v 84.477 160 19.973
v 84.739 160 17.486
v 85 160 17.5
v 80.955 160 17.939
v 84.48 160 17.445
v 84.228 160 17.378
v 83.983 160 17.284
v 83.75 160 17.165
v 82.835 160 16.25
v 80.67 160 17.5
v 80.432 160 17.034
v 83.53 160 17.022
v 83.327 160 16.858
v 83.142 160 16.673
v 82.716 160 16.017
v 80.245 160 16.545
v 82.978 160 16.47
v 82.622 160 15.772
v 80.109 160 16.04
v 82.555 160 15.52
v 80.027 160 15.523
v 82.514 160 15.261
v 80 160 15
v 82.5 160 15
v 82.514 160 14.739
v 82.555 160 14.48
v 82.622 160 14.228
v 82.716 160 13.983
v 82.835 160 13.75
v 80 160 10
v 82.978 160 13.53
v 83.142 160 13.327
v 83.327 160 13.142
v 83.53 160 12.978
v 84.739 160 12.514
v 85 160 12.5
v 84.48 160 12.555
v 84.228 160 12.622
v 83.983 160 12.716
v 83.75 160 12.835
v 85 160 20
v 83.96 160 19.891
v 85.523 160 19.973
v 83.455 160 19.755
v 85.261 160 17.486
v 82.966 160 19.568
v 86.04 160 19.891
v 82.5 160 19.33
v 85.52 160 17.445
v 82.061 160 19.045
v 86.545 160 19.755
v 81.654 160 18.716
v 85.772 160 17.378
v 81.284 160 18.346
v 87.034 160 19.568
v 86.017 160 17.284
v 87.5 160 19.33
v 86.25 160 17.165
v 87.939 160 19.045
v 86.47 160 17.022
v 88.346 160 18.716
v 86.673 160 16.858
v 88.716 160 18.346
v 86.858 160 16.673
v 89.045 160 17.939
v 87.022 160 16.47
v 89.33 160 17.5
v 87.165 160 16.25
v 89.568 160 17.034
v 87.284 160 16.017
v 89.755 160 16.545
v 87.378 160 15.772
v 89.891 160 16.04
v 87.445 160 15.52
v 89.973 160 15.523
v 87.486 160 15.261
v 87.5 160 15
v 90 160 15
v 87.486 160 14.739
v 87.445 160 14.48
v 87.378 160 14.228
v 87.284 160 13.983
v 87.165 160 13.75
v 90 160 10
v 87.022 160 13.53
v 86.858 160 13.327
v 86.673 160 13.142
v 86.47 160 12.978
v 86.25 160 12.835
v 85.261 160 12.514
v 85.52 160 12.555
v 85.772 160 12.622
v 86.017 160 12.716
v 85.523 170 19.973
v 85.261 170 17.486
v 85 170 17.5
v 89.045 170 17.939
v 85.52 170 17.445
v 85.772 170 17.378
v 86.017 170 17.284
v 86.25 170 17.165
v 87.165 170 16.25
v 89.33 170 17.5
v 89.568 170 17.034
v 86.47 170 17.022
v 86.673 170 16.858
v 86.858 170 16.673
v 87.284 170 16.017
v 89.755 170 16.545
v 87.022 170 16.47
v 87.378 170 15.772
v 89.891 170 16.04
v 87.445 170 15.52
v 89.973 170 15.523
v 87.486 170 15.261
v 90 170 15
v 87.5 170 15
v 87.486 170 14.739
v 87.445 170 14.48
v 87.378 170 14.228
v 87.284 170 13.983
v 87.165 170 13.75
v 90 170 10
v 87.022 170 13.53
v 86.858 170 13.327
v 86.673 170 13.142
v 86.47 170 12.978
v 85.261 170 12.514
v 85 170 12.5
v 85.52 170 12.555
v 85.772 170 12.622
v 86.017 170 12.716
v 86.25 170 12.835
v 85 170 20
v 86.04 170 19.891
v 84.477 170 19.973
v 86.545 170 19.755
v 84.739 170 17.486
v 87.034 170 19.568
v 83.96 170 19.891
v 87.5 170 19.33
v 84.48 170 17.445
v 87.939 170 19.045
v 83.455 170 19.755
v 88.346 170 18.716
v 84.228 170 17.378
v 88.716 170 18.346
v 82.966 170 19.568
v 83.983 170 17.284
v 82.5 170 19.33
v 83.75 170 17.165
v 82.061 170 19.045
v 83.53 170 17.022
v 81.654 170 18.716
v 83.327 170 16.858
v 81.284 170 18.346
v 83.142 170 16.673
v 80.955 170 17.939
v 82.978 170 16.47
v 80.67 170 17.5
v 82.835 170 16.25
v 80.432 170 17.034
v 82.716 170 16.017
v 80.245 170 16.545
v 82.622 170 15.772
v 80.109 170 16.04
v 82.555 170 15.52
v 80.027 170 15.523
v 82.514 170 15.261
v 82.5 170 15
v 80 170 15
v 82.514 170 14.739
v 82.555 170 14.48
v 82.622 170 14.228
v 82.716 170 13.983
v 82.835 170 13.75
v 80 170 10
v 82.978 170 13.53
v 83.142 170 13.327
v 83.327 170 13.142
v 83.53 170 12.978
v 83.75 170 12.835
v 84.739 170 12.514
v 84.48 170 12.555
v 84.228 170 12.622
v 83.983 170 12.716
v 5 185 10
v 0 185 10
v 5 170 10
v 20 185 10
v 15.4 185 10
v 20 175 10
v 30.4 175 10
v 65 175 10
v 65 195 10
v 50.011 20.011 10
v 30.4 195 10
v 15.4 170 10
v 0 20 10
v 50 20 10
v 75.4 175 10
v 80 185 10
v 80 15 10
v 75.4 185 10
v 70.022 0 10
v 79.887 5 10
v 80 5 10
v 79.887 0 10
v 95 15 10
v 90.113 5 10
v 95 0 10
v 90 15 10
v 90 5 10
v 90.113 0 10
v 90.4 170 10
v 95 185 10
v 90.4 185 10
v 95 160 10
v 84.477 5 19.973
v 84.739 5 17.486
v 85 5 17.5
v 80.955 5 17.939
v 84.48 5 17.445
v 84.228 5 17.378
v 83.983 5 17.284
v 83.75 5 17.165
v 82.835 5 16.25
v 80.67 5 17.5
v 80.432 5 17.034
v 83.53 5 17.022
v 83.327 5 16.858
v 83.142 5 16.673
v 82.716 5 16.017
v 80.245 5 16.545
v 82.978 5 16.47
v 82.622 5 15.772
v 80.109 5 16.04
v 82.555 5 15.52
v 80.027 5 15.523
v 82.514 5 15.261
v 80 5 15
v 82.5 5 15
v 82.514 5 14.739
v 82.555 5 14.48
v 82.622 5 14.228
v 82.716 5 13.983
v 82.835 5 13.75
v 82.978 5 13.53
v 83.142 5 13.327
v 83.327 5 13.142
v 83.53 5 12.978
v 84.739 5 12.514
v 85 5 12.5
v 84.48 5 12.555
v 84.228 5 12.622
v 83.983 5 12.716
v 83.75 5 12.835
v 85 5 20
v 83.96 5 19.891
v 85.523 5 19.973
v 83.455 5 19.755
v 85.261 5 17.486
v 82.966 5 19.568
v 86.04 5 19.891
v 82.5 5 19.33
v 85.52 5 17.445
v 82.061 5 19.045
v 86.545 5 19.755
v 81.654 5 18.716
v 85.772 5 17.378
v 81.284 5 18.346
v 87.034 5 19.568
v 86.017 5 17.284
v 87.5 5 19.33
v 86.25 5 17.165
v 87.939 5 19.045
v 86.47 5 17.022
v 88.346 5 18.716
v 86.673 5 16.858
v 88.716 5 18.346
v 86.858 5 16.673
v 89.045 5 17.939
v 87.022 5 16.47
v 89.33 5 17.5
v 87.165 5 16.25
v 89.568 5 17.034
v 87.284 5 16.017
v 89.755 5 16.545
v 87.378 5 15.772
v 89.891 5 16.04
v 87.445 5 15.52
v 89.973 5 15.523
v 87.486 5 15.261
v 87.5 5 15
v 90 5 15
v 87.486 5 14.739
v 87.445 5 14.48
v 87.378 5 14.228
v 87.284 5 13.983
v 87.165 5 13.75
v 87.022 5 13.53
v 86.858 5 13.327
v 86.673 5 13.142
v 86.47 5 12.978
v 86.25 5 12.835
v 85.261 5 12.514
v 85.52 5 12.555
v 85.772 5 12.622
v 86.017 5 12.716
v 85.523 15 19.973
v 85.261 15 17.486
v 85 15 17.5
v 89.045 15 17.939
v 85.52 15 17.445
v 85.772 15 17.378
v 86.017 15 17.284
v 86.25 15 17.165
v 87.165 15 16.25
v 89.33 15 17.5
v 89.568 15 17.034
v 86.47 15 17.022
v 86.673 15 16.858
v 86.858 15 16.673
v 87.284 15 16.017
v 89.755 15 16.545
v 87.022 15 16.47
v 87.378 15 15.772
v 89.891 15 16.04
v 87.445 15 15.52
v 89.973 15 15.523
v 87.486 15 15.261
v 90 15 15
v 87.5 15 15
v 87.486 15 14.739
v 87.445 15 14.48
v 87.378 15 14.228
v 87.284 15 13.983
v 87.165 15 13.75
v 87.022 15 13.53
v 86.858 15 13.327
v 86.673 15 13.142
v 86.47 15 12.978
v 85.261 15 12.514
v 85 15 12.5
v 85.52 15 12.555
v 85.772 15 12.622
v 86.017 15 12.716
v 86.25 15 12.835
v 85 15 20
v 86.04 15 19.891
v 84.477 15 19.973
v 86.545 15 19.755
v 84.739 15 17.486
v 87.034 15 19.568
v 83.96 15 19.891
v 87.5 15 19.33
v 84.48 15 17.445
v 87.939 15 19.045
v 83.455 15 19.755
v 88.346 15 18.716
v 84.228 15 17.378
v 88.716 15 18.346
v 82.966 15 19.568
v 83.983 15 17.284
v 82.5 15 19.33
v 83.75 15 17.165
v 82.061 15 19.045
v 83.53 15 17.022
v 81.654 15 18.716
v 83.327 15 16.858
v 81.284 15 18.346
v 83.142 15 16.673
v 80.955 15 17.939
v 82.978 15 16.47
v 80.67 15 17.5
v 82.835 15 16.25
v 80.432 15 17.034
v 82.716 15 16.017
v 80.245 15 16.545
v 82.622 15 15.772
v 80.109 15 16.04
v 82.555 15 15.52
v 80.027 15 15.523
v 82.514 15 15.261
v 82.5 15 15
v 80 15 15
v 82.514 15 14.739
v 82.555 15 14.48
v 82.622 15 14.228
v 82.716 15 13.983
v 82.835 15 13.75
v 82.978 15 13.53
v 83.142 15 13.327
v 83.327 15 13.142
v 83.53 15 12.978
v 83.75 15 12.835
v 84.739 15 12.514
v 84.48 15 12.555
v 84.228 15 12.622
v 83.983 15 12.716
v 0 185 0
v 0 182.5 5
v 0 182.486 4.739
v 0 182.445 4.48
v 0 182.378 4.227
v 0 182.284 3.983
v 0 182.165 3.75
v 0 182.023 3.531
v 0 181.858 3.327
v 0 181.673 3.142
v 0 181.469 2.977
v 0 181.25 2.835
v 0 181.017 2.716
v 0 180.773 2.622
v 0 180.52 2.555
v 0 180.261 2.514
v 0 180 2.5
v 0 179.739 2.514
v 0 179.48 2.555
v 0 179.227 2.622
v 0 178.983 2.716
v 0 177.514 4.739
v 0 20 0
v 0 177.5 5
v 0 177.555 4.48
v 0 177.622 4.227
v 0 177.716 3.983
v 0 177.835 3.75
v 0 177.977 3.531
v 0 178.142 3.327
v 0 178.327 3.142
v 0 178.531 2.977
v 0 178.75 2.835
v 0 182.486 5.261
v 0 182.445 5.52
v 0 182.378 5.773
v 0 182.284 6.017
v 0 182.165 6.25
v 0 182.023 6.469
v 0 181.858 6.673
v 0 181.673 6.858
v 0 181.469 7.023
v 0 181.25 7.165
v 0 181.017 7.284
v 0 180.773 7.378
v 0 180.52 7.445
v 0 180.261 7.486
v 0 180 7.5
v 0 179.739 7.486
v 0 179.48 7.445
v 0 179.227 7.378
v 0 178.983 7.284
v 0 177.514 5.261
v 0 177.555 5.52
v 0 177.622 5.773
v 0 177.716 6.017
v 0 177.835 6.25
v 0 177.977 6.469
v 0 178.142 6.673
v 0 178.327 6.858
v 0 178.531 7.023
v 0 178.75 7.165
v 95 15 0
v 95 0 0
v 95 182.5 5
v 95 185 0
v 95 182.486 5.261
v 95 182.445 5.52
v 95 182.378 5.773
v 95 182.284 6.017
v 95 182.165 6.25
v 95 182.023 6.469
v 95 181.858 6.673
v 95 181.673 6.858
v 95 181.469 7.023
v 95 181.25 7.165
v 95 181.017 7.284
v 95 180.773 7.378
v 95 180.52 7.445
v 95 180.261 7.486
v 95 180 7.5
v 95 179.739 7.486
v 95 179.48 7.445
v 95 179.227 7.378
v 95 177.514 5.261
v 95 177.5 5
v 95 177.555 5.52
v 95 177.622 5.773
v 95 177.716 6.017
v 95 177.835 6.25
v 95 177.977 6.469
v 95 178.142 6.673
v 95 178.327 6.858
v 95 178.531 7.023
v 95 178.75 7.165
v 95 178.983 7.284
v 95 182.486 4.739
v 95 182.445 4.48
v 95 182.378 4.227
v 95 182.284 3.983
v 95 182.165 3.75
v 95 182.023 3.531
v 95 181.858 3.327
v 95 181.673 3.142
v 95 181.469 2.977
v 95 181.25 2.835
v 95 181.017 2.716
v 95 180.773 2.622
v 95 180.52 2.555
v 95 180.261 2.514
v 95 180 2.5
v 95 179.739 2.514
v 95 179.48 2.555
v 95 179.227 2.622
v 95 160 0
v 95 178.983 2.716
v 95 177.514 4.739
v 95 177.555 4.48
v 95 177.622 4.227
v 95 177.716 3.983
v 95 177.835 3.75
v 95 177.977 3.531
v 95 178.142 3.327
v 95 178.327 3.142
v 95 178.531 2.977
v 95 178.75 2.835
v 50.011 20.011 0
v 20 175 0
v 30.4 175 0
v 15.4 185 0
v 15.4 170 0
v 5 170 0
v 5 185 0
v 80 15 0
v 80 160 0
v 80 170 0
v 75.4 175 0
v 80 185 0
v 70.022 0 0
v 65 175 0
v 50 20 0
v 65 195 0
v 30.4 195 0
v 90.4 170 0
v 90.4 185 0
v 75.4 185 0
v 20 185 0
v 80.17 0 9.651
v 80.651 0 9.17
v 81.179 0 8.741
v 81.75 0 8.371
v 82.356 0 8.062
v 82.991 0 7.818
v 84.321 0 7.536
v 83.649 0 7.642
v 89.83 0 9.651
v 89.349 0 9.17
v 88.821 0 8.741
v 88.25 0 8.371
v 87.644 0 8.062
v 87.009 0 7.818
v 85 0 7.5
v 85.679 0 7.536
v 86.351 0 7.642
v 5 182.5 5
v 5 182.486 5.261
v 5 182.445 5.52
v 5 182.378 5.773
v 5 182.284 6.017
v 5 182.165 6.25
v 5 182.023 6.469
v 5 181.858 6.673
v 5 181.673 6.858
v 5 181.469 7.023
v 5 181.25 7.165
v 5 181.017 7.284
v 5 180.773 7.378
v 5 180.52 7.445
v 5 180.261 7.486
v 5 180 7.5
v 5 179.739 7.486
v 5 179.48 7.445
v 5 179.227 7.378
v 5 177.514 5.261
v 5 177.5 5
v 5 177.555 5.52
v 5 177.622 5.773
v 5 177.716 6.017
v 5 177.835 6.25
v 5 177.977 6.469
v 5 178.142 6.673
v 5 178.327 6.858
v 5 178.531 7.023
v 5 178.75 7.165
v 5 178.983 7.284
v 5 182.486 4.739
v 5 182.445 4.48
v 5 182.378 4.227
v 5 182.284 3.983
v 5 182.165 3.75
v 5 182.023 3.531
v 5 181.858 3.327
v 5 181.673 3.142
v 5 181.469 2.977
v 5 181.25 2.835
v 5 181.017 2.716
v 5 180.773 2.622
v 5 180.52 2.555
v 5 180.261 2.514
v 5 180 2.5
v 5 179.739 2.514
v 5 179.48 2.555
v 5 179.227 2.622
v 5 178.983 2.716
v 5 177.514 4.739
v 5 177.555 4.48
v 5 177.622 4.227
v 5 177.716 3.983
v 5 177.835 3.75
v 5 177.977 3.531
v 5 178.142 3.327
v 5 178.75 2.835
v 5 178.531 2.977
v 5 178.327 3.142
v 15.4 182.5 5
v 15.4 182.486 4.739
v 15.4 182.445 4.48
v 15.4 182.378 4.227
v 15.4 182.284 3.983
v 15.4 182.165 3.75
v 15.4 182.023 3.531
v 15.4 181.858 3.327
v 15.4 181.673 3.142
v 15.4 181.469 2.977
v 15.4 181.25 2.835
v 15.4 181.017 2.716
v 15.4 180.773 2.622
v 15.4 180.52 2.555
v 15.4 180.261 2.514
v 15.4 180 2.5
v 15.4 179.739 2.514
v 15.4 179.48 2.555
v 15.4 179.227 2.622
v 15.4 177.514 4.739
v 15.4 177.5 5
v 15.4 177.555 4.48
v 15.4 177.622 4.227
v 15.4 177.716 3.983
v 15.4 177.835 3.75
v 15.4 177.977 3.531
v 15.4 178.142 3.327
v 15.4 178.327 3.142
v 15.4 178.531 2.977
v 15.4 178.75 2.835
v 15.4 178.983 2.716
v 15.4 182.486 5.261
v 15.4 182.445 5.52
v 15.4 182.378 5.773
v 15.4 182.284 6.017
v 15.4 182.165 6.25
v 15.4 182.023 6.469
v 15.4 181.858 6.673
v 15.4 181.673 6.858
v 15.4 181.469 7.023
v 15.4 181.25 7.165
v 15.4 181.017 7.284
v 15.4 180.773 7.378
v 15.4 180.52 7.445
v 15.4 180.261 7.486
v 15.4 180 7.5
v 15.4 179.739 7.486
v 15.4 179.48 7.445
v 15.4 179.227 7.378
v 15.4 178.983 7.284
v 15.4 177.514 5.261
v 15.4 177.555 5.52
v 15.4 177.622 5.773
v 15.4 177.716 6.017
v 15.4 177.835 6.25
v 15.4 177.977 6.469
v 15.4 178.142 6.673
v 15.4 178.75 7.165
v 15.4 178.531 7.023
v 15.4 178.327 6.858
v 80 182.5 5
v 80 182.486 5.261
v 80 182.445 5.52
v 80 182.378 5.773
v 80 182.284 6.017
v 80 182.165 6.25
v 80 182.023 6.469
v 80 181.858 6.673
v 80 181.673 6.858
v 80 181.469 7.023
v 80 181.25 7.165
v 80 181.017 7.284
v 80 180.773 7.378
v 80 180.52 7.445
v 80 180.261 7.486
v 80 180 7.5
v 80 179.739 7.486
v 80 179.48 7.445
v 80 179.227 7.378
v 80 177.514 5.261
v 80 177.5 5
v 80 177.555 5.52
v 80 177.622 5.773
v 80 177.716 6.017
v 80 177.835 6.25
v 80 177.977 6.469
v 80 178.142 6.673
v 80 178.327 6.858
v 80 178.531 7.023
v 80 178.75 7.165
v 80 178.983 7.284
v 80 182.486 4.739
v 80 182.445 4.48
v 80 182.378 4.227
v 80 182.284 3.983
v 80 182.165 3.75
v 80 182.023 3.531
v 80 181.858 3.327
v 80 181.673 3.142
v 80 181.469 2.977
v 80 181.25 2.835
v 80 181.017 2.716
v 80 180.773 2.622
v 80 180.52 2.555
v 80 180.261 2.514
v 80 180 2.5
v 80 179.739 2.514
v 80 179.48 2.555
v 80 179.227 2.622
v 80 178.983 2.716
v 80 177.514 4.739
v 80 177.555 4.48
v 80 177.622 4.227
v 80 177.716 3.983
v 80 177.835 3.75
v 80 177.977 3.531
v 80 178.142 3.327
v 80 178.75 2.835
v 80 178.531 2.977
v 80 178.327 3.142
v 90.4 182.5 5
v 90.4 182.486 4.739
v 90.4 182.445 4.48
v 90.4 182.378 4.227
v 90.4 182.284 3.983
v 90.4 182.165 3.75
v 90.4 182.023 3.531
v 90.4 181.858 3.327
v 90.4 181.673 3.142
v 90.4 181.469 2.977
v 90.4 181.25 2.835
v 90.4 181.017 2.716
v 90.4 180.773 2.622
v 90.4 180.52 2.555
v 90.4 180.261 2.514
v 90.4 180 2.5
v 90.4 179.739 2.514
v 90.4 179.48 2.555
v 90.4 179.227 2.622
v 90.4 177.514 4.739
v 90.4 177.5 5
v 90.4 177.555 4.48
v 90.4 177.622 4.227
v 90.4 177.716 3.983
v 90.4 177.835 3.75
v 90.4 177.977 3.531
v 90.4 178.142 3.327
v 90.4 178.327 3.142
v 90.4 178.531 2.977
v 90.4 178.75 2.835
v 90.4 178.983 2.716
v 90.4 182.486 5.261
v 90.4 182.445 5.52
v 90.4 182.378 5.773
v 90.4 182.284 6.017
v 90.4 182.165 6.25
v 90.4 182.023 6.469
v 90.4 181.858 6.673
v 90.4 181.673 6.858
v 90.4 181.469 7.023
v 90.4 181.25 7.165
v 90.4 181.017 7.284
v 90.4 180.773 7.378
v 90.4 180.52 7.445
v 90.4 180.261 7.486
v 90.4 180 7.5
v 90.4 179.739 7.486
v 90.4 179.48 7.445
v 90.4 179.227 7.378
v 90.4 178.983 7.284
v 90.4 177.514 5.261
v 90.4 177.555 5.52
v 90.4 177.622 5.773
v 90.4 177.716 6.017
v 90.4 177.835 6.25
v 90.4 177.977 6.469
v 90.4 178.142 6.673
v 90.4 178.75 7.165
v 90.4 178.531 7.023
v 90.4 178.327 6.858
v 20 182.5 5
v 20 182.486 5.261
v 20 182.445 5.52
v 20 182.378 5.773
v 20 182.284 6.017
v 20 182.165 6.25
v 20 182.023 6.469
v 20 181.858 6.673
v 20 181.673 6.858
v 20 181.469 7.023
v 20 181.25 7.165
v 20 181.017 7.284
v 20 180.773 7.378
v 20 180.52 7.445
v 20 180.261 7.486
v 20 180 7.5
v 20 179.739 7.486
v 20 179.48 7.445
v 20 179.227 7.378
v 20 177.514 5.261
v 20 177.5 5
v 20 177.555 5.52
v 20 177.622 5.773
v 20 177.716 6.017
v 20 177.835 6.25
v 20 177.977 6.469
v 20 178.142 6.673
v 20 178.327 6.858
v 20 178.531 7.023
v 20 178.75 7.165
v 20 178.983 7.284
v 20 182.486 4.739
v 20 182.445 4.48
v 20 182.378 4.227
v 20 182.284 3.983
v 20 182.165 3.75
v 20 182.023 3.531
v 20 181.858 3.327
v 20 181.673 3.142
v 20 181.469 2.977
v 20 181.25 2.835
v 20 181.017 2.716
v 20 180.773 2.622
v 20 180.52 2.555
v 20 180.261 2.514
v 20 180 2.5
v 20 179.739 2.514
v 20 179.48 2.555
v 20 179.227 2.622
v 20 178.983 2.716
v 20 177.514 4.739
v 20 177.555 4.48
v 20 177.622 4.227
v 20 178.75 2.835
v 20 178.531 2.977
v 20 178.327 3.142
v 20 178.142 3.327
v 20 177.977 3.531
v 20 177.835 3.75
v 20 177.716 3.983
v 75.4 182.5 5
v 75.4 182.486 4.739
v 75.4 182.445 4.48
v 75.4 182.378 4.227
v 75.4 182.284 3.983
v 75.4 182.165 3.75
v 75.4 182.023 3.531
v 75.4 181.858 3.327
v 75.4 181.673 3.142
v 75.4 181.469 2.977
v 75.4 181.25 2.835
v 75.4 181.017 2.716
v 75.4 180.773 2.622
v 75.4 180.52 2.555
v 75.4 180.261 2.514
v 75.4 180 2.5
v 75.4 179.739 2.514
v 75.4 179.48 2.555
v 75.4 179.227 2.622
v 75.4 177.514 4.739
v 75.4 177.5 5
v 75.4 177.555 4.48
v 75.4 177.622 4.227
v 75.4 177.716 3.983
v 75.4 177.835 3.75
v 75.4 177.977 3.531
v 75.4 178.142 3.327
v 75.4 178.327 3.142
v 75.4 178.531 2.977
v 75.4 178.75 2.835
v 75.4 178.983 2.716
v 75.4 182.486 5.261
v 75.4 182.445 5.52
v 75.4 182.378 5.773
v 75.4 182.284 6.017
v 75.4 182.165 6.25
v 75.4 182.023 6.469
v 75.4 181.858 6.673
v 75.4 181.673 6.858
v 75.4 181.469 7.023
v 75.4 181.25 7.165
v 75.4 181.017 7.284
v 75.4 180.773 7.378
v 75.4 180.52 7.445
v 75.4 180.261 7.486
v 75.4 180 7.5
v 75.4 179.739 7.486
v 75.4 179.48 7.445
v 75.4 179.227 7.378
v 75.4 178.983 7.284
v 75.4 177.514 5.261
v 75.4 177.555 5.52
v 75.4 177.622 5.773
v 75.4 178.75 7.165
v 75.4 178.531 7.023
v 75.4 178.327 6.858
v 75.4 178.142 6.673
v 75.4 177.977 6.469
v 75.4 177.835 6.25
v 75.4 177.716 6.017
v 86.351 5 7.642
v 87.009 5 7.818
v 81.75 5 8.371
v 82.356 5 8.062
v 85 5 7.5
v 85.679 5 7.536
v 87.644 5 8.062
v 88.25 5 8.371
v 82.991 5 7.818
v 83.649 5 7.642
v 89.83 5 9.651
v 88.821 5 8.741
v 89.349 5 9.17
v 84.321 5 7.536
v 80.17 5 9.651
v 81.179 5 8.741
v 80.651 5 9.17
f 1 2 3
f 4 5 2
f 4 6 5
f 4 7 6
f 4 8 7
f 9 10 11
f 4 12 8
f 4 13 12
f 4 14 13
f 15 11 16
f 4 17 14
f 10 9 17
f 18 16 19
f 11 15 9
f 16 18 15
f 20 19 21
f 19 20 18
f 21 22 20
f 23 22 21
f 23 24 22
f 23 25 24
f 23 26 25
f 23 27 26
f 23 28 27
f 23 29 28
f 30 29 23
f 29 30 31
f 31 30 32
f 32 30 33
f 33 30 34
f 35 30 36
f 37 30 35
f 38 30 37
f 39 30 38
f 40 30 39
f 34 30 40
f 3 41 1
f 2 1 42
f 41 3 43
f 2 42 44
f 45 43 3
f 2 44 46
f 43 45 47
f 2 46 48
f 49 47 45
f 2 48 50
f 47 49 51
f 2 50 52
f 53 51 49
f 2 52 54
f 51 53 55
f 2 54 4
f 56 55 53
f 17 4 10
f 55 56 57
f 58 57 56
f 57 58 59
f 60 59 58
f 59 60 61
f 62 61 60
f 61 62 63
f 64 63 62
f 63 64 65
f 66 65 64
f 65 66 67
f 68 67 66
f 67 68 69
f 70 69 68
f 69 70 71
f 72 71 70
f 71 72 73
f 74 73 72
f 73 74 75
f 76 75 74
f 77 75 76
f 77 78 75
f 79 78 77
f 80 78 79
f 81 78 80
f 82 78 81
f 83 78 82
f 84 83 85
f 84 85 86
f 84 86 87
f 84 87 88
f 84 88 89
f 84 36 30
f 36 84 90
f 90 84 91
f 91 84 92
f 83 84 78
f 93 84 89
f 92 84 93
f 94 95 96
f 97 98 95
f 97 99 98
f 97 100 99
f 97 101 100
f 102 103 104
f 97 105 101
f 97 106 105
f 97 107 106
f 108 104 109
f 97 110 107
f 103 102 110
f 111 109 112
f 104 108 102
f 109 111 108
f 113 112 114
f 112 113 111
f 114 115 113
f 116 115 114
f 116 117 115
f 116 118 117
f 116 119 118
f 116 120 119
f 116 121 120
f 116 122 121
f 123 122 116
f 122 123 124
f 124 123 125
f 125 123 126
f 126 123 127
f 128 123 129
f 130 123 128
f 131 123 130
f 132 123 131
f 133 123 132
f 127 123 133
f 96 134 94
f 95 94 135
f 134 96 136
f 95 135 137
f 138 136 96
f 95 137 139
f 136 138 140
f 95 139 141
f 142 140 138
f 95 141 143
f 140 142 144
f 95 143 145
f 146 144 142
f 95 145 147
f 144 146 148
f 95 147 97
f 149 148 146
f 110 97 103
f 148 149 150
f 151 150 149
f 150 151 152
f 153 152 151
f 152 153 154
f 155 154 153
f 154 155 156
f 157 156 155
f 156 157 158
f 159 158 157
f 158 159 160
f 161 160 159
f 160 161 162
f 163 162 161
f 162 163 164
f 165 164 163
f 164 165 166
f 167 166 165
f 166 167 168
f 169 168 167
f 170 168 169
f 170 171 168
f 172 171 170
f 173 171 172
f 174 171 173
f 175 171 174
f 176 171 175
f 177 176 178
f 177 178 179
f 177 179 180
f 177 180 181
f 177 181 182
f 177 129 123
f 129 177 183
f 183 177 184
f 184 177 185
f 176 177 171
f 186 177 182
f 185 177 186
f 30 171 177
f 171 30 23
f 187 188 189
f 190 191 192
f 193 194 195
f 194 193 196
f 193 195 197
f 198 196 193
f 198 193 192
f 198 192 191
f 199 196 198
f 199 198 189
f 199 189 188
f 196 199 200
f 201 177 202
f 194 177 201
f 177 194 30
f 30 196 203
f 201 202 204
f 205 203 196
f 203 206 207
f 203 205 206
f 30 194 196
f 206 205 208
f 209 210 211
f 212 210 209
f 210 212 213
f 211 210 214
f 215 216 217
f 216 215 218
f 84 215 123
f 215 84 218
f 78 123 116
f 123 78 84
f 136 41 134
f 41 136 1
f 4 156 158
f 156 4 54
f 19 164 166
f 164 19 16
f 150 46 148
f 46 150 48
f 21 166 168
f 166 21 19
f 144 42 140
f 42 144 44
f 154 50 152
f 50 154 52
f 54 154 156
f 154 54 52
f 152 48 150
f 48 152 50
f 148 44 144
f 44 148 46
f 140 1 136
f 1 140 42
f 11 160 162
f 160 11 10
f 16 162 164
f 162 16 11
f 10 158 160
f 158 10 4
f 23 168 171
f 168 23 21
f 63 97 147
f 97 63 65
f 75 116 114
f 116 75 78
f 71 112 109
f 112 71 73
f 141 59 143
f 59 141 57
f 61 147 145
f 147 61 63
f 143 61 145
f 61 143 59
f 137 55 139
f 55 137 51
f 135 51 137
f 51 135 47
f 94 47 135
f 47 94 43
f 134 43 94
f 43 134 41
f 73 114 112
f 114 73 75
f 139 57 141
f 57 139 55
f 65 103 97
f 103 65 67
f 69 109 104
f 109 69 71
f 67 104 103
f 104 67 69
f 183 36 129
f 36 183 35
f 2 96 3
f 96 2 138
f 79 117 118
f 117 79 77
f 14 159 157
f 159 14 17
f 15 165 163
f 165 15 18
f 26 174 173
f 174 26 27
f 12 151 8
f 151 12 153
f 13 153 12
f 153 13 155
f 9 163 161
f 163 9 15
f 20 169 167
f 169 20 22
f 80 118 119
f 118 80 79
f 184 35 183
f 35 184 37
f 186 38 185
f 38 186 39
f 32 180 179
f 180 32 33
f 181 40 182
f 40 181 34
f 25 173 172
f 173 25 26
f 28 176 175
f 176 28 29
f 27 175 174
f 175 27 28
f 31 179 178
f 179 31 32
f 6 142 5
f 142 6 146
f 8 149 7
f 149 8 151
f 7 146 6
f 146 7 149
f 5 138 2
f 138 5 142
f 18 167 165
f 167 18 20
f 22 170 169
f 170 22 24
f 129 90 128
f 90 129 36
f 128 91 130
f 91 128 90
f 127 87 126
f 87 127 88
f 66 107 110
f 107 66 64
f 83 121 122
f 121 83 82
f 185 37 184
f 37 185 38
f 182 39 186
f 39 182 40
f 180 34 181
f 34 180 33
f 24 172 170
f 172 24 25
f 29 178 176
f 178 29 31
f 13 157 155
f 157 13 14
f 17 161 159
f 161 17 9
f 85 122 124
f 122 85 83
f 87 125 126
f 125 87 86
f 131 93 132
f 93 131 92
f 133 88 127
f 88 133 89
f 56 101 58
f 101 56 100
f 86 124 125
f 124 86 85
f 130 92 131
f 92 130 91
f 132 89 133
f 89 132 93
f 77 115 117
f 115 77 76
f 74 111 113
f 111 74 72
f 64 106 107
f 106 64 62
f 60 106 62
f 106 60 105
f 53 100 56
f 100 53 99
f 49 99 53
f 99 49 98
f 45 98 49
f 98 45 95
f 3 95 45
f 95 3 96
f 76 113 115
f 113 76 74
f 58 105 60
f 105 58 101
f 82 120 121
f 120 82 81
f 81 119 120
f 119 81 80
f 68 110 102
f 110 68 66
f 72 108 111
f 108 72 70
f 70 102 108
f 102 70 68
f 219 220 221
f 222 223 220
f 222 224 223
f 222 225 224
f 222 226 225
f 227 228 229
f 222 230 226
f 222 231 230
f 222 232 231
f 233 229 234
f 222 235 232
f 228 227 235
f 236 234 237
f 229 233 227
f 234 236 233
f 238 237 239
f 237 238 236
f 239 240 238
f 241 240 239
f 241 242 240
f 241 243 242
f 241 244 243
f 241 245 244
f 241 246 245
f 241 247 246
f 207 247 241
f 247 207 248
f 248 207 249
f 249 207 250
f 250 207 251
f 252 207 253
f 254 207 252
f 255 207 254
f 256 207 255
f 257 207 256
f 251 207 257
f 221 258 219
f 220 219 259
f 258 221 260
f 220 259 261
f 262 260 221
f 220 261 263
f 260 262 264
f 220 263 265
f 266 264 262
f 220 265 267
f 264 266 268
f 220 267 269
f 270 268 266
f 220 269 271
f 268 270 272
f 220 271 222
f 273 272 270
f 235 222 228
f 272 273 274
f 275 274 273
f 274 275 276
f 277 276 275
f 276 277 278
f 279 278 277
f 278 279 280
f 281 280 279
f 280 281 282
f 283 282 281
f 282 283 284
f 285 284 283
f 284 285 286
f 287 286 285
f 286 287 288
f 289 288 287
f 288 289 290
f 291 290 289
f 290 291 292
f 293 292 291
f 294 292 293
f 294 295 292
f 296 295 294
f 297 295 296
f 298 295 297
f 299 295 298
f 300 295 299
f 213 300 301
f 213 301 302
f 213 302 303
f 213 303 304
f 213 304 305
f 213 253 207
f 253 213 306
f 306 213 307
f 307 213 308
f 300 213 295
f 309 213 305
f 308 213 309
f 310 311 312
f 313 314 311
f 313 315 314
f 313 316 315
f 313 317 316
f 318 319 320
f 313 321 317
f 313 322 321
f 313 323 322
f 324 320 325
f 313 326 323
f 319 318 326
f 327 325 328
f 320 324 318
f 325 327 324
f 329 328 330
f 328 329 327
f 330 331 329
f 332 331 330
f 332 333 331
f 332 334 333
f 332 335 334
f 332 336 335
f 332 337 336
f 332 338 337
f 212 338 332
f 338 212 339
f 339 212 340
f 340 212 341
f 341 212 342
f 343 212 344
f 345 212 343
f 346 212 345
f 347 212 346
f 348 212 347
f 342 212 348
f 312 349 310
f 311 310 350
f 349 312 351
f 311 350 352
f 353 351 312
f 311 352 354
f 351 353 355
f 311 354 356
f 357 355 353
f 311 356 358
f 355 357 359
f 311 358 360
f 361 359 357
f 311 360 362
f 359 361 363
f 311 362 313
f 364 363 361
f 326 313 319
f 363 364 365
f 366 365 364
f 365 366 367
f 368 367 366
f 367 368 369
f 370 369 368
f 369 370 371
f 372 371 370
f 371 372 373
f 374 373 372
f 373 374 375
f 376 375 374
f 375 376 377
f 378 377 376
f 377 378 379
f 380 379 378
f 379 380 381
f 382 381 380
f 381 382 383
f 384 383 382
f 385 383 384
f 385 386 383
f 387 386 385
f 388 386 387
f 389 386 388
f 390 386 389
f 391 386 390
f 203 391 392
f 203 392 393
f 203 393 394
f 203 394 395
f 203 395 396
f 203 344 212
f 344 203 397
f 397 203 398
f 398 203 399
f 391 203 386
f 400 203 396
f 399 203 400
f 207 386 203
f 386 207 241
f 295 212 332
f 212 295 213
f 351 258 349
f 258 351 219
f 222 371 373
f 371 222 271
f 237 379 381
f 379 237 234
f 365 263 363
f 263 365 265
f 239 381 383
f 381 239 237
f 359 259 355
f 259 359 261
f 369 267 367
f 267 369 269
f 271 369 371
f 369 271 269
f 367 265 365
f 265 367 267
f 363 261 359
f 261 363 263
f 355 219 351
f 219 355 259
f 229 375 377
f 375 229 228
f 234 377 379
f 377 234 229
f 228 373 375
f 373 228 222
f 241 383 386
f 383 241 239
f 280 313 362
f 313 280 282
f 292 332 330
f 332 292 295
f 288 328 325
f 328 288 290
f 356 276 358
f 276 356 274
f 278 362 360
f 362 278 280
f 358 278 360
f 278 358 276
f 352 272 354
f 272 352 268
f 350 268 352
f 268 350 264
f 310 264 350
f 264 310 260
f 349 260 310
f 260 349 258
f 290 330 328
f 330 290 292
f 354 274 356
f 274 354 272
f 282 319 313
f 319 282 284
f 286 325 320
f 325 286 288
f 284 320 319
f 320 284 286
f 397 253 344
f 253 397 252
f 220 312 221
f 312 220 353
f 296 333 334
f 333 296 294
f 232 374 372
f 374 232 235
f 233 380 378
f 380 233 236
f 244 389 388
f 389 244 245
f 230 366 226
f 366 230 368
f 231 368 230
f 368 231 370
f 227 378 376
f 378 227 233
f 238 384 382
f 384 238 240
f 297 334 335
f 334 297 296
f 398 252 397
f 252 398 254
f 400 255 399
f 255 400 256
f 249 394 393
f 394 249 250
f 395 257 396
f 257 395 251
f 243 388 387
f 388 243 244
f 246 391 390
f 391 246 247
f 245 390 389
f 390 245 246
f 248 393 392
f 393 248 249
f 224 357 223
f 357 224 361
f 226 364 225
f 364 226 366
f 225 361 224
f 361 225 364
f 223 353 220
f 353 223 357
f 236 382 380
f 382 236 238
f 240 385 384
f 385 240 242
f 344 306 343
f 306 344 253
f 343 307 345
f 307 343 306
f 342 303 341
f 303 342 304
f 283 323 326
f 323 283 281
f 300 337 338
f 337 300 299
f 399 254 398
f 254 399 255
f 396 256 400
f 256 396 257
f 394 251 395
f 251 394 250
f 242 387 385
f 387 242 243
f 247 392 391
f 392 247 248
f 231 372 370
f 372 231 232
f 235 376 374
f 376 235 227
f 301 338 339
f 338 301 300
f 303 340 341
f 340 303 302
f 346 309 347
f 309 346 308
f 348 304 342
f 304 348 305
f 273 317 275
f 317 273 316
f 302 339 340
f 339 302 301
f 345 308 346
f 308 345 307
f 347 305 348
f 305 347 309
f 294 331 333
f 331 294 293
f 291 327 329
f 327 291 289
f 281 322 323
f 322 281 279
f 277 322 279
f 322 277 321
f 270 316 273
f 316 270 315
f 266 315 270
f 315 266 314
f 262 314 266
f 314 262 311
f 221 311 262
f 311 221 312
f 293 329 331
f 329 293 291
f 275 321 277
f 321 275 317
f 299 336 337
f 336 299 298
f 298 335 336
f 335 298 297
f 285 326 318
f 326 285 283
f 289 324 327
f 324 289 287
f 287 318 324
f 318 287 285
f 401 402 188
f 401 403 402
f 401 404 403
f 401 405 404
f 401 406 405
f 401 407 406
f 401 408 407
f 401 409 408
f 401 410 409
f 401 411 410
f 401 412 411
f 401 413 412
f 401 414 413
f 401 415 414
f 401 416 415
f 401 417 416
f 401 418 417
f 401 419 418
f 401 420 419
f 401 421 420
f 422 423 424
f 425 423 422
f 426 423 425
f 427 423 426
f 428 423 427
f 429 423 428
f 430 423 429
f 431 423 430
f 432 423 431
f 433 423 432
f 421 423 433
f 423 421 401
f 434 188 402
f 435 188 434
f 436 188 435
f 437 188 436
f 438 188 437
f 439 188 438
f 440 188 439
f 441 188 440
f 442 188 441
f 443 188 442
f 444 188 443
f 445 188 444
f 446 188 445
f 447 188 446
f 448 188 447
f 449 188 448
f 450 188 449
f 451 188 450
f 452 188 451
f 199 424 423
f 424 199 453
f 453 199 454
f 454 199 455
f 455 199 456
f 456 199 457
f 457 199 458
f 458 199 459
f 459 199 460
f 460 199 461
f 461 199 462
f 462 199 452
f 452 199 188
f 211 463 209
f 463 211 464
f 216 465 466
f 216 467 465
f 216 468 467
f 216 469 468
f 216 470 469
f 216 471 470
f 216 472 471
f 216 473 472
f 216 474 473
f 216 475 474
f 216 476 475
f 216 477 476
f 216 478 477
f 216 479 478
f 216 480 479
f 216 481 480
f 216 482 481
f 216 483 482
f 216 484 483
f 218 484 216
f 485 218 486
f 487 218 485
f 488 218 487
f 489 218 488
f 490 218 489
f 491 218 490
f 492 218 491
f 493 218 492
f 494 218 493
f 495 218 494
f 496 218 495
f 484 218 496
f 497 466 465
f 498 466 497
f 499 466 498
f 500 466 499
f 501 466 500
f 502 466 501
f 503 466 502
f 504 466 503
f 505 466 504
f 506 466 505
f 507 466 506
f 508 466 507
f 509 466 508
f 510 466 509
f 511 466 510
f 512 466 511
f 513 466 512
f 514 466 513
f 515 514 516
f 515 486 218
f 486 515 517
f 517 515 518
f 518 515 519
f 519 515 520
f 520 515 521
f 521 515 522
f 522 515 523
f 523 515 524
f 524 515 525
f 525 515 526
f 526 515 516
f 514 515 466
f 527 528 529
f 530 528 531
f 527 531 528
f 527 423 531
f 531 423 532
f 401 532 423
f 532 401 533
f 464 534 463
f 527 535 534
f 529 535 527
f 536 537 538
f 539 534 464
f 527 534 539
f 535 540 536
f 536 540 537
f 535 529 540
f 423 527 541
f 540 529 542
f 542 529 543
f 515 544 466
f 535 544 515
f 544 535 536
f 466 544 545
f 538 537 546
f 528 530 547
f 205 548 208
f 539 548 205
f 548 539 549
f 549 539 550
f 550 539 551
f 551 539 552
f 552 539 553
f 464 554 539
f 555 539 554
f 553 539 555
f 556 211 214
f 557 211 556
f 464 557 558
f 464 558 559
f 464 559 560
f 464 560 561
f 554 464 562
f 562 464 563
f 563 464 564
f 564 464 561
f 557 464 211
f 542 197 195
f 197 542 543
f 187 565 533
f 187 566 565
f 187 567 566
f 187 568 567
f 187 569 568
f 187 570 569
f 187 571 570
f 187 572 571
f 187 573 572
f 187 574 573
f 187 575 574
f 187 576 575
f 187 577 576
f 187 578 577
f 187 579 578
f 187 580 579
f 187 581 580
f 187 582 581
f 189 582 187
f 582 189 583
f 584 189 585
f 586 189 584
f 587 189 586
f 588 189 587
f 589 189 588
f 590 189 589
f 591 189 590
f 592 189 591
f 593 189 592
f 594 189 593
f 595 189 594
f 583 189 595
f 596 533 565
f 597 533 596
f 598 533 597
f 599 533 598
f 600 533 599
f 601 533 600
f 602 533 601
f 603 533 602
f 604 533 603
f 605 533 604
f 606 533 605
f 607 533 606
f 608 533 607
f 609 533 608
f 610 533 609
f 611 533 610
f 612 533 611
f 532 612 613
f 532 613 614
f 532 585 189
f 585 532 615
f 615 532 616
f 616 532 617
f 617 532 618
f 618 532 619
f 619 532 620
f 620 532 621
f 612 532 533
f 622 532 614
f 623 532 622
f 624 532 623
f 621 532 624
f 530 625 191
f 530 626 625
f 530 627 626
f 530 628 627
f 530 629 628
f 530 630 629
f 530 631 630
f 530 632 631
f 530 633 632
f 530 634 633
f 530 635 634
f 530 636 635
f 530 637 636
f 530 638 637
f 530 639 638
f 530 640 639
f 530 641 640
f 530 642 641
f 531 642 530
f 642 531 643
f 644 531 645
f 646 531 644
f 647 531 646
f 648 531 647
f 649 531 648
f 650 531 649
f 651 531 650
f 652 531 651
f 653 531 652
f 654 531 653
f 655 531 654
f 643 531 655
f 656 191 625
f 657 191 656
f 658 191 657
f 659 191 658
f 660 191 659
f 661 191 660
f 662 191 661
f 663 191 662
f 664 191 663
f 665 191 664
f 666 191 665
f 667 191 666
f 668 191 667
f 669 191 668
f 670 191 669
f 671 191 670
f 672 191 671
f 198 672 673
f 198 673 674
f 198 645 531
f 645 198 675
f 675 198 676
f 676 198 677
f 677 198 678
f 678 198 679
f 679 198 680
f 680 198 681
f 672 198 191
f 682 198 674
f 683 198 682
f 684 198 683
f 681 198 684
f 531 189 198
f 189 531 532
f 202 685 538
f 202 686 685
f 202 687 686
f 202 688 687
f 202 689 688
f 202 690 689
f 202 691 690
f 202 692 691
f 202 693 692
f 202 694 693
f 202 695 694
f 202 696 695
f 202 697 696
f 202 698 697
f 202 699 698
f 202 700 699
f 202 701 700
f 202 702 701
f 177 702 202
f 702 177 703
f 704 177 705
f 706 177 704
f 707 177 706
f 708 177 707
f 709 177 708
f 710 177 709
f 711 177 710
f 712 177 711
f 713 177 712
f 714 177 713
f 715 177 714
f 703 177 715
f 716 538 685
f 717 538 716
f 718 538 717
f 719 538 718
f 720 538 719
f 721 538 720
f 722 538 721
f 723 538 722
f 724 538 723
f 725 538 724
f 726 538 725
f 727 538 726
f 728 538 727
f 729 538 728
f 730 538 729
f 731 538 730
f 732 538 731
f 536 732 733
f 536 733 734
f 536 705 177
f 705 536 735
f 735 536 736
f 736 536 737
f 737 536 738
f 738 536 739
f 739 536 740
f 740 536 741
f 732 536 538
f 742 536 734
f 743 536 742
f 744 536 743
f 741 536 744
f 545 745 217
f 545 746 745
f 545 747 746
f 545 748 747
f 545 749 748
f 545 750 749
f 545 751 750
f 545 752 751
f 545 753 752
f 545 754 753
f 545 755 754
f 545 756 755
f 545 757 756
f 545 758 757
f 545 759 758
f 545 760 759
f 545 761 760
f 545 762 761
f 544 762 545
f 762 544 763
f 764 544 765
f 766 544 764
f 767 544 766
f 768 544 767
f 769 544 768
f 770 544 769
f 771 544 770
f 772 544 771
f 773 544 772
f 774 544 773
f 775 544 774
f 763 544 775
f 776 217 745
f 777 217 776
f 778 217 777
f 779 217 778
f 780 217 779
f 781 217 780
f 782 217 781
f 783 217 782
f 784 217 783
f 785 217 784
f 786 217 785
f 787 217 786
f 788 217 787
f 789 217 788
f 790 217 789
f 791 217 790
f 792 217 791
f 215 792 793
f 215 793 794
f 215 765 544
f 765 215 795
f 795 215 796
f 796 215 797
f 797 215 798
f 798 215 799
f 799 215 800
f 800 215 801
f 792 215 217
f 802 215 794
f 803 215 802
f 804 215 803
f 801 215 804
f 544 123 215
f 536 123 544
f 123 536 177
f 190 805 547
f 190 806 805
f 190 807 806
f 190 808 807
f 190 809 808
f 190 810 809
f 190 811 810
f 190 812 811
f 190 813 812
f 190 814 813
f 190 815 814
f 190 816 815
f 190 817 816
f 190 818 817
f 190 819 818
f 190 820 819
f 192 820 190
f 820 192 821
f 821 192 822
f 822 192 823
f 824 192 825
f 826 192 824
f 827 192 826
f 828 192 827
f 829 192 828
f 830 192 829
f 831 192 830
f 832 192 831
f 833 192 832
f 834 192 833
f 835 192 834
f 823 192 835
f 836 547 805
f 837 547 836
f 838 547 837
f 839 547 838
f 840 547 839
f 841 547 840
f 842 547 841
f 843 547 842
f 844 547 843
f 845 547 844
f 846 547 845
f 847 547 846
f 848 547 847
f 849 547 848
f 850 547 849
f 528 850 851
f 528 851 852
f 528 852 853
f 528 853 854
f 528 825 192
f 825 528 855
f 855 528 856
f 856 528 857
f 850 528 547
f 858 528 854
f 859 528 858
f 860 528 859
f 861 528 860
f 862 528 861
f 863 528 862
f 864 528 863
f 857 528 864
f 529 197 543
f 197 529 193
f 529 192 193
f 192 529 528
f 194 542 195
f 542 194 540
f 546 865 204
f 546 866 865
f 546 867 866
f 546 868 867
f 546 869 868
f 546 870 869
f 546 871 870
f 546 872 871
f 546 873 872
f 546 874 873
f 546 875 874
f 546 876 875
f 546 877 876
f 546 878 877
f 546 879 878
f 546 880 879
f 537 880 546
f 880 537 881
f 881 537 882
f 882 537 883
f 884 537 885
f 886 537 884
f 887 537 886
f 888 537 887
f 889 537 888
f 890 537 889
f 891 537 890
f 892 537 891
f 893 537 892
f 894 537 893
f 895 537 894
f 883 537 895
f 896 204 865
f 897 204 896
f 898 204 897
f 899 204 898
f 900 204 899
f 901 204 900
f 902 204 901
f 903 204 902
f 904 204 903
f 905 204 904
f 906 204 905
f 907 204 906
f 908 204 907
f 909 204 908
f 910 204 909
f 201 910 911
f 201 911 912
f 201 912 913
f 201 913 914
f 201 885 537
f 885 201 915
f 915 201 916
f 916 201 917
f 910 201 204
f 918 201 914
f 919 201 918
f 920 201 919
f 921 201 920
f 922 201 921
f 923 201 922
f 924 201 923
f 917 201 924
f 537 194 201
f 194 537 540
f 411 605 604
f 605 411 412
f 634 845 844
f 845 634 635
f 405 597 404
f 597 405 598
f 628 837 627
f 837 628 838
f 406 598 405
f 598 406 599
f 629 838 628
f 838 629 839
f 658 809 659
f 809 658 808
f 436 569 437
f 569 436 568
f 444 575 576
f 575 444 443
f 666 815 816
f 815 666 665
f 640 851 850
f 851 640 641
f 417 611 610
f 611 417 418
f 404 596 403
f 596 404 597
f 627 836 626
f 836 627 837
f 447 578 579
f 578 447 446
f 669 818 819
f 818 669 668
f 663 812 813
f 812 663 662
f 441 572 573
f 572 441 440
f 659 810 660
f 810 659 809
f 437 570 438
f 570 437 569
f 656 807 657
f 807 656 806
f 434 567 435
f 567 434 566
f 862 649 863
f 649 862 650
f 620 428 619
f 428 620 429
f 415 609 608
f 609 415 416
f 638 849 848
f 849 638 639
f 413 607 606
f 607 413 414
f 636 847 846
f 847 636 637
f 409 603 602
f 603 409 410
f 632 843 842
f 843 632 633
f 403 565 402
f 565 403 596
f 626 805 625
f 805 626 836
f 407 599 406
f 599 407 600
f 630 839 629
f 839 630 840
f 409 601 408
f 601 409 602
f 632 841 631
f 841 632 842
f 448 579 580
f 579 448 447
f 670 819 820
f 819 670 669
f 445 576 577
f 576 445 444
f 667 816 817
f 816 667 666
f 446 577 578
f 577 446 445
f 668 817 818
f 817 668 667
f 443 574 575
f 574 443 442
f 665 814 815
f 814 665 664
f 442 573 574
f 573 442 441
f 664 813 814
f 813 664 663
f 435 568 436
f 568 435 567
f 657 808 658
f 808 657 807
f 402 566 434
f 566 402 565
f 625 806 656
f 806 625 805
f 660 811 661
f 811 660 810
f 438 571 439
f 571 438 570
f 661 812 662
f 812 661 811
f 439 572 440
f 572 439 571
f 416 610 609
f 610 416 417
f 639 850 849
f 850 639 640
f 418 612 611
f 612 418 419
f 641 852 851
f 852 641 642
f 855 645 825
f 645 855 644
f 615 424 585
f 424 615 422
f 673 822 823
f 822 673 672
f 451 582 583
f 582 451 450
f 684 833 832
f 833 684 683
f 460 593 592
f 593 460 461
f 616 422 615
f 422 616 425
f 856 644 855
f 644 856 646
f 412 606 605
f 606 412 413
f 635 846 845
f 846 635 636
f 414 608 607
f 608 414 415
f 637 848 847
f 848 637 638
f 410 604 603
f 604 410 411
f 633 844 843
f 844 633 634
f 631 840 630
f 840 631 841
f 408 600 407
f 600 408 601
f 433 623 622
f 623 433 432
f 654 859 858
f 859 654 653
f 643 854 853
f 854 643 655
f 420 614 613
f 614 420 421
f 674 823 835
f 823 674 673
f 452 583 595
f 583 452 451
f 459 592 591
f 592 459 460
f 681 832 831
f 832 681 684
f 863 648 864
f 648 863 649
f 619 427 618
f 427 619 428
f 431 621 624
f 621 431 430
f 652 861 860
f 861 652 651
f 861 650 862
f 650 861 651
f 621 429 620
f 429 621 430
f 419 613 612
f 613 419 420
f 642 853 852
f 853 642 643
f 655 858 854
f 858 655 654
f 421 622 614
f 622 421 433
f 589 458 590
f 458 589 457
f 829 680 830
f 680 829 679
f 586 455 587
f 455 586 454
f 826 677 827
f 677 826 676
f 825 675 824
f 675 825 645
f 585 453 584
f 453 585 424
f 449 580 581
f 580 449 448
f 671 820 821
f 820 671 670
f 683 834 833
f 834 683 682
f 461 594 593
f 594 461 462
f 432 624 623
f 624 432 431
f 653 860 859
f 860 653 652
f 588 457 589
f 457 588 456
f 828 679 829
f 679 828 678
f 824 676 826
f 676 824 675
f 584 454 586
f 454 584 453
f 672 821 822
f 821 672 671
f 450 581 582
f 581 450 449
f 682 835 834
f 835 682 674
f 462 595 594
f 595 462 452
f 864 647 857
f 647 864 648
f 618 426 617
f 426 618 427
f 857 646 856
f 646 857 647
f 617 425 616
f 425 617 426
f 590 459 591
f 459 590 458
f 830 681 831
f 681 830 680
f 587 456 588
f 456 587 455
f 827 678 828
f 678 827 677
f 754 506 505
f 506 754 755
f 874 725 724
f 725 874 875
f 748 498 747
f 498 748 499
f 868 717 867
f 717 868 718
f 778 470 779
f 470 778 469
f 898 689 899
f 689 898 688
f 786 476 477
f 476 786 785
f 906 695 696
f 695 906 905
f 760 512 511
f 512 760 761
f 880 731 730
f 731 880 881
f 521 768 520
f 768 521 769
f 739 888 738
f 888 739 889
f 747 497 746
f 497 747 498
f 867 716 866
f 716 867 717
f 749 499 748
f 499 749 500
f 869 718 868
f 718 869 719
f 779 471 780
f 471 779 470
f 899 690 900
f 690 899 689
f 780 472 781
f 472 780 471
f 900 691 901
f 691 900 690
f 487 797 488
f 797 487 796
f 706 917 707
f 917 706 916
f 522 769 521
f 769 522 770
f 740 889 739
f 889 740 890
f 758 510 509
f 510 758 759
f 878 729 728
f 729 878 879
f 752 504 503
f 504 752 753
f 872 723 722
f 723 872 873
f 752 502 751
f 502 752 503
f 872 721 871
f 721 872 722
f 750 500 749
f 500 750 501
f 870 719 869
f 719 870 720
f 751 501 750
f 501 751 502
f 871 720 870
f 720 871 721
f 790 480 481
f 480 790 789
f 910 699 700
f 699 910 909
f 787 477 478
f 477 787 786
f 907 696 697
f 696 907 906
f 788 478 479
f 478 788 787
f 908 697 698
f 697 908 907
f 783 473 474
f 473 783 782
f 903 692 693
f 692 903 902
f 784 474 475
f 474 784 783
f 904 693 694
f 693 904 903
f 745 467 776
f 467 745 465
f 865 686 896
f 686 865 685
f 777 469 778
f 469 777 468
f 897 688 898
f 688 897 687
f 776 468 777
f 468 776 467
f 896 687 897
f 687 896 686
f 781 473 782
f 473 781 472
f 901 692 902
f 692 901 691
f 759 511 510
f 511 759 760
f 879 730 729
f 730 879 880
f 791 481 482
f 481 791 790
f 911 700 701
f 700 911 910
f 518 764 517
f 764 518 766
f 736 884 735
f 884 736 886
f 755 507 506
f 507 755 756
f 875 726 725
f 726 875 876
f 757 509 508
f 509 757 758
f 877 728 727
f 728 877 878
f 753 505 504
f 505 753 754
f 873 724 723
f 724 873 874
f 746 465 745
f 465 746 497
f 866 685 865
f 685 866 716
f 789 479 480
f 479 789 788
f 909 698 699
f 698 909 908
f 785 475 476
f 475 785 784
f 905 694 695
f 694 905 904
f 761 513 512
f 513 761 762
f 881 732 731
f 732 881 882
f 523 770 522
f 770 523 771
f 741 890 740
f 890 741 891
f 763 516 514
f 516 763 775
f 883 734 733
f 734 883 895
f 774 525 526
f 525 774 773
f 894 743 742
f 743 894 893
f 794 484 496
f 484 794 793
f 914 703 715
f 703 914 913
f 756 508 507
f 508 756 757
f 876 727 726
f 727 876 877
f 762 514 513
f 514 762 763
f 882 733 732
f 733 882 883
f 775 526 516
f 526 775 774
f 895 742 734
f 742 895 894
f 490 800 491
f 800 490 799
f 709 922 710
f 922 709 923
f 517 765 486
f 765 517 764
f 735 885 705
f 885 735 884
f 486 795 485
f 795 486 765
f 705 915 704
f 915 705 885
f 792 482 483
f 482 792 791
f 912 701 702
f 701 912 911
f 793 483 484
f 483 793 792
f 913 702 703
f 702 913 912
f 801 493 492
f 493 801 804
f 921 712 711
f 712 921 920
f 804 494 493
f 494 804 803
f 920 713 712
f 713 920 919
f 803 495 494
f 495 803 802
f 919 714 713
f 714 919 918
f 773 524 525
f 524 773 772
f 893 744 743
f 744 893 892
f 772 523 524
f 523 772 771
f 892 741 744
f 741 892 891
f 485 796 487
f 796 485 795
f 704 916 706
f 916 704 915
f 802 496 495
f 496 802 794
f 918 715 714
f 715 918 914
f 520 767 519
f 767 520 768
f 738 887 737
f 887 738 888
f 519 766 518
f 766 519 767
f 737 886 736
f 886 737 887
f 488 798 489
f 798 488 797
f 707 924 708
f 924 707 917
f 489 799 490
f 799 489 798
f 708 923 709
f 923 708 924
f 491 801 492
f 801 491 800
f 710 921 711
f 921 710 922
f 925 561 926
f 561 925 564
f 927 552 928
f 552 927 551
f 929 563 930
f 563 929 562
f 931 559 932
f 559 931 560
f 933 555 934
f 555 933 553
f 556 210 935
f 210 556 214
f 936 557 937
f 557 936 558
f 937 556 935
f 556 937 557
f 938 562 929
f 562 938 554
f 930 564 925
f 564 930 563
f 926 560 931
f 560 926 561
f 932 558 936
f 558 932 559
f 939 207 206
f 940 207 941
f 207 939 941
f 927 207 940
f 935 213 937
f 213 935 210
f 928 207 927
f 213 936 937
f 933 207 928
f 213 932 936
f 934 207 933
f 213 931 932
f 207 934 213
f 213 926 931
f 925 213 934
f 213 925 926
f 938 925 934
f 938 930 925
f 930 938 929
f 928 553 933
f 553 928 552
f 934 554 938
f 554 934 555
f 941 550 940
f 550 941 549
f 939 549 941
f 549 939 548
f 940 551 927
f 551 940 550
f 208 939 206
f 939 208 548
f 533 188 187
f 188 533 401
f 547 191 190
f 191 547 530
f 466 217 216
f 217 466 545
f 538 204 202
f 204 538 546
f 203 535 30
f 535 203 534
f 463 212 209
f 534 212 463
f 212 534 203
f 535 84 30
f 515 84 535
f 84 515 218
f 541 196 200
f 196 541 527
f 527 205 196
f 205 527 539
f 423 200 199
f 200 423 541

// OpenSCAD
$fn=60;

// methoden
module holder(edge=[0,0,0]) {
    translate(edge){
        rotate([0,0,90]) difference(){
            union() {
                translate([0,10,0]) cube([10,10,5]);
                translate([0,15,5]) rotate([0,90,0]) cylinder(h=10, d=10);
            };
            translate([0,15,5]) rotate([0,90,0]) cylinder(h=10, d=5);
            translate([0,4,10]) cube([10,4,3]); 
            translate([0,12,10]) cube([10,4,3]); 
        };
    };
};


// main
difference() {
    cube([95,195,10]);
    // cut for the base layer
    translate([5,170,0]) cube([10.4,25,10]);
    translate([80,170,0]) cube([10.4,25,10]);
    translate([20,175,0]) cube([10.4,20,10]);
    translate([65,175,0]) cube([10.4,20,10]);
    // screw hole
    translate([0,180,5]) rotate([0,90,0]) cylinder(h=20, d=5);
    translate([75,180,5]) rotate([0,90,0]) cylinder(h=20, d=5);
        // dent for the front hinge of the top plate
    translate([85,0,14]) rotate([-90,0,0]) cylinder(h=5, d=13);

    //easier access to the screws
    translate([0,185,0]) cube([21,10,10]);
    translate([74,185,0]) cube([21,10,10]);
    // place as stopper
    translate([80,15,0]) cube([20,145,10]);
    // edge for holder on the top layer
    translate([30,0,0]) rotate([0,0,-45]) cube([30,28.3,10]);
    cube([50,20,10]);
}


// holder
holder(edge=[100,160,10]);
holder(edge=[100,5,10]);
